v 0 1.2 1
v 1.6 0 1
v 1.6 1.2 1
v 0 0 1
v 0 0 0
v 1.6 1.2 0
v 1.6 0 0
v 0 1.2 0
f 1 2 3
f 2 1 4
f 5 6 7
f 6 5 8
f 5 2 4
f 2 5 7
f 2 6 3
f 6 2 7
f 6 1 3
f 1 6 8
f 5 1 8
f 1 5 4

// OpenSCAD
/* Warning, this is a very basic generator with a lot of approximation 
input data : [VFLGA, ARA, 1.6x1.2mm, 4, , B, C04-01199B]
generated by com.zoubworld.electronics.cad.model3d.Basic
Date : Sun Feb 15 10:50:49 CET 2026
*/

//body
color("black")
translate([0,0,0])
cube([1.6,1.2,1.0], center=false);
